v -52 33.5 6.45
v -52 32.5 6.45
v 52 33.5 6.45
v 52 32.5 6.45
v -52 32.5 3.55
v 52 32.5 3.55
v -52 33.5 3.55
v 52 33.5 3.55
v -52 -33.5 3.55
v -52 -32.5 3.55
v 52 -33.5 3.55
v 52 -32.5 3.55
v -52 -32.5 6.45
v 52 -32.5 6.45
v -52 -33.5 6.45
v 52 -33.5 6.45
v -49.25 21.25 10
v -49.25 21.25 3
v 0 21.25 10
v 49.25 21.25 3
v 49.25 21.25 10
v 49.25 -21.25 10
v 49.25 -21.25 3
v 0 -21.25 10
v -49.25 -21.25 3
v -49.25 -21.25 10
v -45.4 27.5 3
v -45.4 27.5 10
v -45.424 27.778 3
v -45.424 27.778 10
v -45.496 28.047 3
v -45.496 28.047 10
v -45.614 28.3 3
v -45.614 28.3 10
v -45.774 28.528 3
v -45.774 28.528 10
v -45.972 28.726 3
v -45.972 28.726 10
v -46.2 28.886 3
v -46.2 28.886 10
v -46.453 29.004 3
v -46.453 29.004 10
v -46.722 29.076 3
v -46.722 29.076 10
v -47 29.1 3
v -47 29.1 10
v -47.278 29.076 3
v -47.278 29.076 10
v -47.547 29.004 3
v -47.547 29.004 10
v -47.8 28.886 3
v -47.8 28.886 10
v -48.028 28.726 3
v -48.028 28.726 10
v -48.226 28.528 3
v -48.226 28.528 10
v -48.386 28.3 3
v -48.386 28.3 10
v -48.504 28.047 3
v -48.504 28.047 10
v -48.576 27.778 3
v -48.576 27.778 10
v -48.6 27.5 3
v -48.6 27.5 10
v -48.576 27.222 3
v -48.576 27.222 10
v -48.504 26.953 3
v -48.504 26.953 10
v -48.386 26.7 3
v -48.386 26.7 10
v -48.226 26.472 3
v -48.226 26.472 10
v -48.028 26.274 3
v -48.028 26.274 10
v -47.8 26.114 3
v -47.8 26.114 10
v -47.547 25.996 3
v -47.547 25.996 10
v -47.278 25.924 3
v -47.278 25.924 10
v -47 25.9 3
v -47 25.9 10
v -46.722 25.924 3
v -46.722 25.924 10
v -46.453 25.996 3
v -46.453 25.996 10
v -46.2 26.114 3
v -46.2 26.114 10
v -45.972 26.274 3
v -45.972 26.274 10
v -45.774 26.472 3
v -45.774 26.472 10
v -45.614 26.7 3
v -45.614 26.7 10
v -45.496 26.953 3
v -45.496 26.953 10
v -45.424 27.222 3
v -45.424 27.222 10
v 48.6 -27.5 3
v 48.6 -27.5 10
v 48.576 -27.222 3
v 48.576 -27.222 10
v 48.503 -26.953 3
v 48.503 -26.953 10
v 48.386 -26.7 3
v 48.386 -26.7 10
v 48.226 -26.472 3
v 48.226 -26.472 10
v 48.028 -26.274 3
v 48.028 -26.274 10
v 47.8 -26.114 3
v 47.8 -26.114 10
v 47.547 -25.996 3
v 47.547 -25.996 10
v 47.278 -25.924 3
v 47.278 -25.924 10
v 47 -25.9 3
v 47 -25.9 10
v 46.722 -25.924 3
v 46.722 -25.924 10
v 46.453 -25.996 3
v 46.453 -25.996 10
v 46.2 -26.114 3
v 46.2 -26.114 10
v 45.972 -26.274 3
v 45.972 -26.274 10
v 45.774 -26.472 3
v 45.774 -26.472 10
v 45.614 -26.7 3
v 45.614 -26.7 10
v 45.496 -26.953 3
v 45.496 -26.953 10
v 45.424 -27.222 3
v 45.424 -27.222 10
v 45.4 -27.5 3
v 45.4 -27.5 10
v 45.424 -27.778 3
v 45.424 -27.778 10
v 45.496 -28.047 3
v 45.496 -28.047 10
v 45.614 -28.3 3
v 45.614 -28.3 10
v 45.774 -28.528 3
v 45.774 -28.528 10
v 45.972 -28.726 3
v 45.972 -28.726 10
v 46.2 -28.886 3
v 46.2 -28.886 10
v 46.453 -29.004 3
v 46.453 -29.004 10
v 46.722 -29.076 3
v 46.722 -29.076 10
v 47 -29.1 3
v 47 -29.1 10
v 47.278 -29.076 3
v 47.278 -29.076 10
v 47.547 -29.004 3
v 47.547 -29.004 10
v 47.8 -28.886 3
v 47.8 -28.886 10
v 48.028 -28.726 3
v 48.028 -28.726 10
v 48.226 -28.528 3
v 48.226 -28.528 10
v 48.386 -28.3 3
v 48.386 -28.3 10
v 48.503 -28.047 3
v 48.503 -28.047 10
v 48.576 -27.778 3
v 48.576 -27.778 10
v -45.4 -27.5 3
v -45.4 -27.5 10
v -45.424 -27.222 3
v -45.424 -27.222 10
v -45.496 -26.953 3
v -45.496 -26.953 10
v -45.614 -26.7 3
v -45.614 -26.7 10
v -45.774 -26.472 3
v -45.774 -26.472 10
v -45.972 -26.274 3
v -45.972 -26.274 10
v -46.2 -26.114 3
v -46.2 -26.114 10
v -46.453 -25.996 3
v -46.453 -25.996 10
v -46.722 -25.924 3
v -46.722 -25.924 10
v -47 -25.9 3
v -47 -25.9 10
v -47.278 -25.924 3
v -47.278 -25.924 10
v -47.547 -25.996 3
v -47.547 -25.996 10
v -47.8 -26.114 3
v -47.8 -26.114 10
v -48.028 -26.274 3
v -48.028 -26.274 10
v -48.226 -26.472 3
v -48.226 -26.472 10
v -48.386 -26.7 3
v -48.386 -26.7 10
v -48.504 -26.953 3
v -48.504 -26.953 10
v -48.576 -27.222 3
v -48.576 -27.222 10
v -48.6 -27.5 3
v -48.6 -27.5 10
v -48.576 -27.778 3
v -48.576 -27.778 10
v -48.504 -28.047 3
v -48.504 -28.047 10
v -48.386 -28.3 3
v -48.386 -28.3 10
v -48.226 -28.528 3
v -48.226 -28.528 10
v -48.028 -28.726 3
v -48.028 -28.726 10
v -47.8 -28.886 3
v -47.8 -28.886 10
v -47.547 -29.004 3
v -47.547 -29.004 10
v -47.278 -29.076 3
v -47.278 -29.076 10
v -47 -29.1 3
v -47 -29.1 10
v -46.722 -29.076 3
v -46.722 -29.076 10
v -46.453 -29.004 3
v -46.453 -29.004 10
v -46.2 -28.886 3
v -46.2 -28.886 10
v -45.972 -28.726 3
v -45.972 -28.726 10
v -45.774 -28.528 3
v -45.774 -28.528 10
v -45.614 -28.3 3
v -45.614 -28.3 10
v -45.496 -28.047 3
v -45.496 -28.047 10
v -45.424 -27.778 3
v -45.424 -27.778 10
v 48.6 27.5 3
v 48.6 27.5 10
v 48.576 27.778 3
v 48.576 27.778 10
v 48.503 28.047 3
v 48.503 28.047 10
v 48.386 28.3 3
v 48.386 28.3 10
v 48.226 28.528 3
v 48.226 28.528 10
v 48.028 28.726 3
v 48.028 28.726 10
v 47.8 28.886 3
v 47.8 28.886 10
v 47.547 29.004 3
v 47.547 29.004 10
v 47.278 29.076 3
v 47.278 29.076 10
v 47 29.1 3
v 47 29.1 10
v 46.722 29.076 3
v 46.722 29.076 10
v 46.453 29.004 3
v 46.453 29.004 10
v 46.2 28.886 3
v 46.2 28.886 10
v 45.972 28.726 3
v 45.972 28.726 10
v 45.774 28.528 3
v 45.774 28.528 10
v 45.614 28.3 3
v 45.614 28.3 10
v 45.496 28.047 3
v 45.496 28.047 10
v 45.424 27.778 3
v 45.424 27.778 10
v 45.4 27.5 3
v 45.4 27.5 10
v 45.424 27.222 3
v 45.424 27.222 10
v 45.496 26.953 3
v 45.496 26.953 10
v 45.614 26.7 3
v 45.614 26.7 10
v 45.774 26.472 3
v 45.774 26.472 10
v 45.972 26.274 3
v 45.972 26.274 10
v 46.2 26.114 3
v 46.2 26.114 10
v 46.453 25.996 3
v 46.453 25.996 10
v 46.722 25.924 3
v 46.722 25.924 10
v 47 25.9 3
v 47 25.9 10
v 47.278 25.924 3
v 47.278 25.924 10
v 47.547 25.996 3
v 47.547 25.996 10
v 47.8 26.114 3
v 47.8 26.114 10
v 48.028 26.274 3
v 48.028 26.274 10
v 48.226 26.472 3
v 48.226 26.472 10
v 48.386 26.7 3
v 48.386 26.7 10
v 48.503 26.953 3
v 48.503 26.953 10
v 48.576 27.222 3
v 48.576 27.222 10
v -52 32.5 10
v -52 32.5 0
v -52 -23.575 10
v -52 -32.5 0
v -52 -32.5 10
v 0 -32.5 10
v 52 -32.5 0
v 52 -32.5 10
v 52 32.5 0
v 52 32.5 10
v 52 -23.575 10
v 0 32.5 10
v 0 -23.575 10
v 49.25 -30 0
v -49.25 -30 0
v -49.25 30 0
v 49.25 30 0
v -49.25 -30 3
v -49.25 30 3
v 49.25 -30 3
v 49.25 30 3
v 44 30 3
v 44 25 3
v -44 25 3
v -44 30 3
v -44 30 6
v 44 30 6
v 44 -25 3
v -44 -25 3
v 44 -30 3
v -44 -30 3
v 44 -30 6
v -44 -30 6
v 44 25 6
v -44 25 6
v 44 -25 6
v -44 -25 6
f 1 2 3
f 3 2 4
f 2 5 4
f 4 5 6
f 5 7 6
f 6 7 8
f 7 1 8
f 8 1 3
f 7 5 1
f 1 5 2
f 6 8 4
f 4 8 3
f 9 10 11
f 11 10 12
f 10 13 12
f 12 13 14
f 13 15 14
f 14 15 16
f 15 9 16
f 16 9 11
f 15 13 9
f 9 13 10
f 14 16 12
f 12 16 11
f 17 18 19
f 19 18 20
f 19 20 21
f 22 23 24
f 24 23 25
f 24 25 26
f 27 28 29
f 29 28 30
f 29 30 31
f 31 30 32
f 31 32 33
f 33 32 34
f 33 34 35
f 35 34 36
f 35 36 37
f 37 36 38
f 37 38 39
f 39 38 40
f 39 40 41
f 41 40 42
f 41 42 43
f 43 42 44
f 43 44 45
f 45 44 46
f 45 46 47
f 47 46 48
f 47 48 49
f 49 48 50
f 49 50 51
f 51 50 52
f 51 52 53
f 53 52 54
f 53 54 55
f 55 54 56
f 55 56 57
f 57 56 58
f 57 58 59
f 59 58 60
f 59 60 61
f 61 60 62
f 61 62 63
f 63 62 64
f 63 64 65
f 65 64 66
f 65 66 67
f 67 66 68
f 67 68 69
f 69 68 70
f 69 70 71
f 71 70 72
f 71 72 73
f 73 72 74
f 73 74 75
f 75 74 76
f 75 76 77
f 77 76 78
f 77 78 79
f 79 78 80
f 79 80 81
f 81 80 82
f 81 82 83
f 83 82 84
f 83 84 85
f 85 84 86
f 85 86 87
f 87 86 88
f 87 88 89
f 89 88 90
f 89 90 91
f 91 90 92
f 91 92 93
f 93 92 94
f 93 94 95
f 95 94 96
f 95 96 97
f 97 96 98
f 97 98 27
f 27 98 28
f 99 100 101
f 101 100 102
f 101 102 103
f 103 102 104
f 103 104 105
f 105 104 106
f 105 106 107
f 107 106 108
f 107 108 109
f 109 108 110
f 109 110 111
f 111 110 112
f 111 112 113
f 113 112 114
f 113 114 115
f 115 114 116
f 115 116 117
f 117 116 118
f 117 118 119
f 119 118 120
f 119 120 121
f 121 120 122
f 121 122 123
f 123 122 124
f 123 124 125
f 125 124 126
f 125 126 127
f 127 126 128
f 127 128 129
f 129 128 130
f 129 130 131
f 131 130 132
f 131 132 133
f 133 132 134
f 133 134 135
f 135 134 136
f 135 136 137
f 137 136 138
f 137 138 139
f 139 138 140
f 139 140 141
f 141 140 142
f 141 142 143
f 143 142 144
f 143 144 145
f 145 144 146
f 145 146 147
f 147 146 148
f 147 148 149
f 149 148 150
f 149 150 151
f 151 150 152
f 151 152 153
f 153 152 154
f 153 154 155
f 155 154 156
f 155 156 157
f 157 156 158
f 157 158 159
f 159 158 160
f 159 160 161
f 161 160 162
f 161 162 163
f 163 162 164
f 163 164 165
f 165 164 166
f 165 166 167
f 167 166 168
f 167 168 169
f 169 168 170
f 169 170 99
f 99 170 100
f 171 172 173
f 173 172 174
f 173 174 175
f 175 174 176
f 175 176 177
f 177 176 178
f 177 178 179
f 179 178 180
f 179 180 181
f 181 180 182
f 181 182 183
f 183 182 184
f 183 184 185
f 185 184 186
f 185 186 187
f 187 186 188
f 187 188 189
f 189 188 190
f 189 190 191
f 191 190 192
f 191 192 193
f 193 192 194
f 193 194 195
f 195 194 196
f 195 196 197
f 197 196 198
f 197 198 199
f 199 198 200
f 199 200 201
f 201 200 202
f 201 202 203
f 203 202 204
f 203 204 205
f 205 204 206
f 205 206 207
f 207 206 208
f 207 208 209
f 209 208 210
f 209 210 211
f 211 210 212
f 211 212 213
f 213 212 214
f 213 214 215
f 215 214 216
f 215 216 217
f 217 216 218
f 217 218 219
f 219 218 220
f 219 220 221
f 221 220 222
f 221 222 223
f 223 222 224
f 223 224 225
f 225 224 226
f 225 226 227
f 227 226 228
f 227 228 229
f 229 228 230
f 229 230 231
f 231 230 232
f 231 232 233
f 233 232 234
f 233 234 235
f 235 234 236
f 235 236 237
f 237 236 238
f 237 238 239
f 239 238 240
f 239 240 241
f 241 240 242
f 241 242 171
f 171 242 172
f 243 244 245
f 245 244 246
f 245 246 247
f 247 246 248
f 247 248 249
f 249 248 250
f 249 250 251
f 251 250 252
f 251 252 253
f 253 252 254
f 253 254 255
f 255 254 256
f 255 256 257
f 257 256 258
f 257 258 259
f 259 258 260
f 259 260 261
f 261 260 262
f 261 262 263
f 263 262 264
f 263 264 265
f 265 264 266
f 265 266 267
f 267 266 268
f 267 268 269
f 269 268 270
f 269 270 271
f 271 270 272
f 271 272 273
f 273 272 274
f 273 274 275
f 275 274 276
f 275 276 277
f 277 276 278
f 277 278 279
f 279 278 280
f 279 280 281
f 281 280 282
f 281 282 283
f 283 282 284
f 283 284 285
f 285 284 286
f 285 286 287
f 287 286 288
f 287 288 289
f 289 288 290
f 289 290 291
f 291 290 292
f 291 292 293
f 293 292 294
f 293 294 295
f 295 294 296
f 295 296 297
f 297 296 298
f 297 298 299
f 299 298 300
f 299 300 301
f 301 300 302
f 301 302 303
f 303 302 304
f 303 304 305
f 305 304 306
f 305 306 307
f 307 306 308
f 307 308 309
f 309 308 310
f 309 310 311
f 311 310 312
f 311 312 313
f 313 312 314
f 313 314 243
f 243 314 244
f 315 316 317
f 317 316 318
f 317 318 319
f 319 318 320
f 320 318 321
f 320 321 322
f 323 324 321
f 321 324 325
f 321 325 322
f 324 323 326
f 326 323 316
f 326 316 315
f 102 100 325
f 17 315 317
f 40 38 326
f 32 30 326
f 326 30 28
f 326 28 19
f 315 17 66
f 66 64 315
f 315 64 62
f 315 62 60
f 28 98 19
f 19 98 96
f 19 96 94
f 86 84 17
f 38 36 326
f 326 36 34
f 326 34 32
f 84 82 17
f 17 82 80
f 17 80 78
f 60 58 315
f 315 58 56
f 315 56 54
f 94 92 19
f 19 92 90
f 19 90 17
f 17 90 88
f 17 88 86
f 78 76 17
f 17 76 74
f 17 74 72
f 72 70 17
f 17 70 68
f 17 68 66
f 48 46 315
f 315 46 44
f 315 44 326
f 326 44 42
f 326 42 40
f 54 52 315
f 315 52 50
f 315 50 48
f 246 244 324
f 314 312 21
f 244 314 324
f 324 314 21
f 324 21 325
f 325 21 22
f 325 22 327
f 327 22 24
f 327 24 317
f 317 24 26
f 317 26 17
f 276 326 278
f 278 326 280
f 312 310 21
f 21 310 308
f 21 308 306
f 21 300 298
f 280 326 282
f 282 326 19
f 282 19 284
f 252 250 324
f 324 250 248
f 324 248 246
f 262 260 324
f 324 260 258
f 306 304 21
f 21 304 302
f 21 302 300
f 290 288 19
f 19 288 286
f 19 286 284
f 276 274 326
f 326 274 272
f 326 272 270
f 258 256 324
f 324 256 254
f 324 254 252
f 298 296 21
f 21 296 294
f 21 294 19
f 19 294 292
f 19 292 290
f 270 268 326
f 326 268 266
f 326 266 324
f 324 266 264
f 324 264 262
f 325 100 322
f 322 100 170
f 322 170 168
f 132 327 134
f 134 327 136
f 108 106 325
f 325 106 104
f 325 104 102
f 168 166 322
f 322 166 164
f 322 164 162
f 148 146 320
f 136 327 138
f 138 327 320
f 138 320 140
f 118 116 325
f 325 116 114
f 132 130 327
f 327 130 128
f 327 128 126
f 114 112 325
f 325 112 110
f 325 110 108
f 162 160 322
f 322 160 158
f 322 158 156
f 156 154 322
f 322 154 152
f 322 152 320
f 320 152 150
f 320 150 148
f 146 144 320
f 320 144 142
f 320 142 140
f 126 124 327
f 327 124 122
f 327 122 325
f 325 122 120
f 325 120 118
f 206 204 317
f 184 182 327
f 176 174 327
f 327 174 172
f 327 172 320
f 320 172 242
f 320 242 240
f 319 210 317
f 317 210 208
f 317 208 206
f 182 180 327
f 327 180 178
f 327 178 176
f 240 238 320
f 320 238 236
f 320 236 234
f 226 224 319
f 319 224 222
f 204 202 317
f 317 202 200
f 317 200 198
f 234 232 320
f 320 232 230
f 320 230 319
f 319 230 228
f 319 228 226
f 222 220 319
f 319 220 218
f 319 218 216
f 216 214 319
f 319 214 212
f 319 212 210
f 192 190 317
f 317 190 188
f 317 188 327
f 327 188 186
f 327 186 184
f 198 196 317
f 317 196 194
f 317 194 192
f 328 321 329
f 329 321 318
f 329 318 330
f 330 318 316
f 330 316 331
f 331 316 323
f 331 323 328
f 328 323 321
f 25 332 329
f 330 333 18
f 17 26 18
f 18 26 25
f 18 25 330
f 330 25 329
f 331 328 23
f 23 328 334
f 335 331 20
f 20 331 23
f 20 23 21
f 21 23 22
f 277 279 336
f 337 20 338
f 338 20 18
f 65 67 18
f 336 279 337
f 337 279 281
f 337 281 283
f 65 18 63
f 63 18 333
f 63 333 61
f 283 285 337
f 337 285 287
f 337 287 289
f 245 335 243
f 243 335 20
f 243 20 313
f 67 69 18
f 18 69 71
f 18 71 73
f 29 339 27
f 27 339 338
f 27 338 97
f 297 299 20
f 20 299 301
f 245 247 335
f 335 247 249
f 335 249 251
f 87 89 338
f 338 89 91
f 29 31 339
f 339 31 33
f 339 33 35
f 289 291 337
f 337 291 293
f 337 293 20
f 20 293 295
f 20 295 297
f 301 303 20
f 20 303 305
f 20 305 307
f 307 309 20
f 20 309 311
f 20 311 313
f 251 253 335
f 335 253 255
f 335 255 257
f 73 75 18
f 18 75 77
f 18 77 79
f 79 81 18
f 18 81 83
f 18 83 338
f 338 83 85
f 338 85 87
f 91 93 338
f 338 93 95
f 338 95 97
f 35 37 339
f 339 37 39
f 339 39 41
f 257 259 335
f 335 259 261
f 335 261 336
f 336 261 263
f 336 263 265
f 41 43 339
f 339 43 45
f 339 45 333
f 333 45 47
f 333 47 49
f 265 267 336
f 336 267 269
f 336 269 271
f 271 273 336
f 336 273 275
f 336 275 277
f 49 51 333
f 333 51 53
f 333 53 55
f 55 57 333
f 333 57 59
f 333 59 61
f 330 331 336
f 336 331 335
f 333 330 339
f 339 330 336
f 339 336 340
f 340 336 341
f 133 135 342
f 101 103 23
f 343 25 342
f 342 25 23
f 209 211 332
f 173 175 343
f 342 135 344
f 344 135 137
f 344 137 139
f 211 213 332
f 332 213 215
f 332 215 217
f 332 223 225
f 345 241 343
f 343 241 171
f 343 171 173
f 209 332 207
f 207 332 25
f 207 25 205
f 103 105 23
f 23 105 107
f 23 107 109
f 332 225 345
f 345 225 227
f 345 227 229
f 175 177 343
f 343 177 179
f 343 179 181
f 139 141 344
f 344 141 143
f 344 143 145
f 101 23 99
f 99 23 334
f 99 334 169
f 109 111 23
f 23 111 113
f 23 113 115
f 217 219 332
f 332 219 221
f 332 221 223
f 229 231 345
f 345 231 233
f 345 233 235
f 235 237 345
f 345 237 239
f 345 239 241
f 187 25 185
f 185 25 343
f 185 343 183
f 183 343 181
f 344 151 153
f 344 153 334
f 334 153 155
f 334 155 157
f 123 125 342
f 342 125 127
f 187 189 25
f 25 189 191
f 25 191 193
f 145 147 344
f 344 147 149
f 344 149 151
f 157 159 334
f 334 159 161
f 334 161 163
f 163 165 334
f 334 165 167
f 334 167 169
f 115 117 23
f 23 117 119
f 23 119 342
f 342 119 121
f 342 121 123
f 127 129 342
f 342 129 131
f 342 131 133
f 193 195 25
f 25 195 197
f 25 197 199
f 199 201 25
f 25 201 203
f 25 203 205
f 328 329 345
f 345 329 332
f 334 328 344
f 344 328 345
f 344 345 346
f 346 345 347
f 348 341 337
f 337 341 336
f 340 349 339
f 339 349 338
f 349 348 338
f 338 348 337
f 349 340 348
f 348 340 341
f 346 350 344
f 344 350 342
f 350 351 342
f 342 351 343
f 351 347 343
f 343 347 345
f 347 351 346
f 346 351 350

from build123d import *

# Parameters (mm, degrees)
MAIN_SKETCH_W                = 104
MAIN_SKETCH_H                = 65
MAIN_EXTRUSION_DEPTH         = 10
ESQUISSE2_W                  = 2.9
ESQUISSE2_H                  = 1
MAKERBEAM_ATTACHMENT_DEPTH   = 104
MAKERBEAM_ATTACHMENT_2_DEPTH = 104
ESQUISSE3_W                  = 98.5
ESQUISSE3_H                  = 42.5
HOLE_LCD_SCREEN_DEPTH        = 11
ESQUISSE4_R                  = 1.6
HOLES_SUPPORT_LCD_DEPTH      = 11
ESQUISSE5_W                  = 98.5
ESQUISSE5_H                  = 60
SUPPORTTOPANDBOTTOM_DEPTH    = 3
ESQUISSE6_W                  = 88
ESQUISSE6_H                  = 5
HOLES_FOR_PINS_DEPTH         = 3


with BuildPart() as part:
    # Main Sketch → Main Extrusion (new body)
    with BuildSketch(Plane.XY):
        Rectangle(MAIN_SKETCH_W, MAIN_SKETCH_H)
    extrude(amount=MAIN_EXTRUSION_DEPTH)

    # Esquisse3 → Hole LCD Screen (cut, through all)
    with BuildSketch(Plane.XY.offset(10)):
        Rectangle(ESQUISSE3_W, ESQUISSE3_H)
    extrude(amount=-HOLE_LCD_SCREEN_DEPTH, mode=Mode.SUBTRACT)

    # Esquisse4 → Holes Support LCD (cut, through all)
    with BuildSketch(Plane.XY.offset(10)):
        with Locations((-47, 27.5)):
            Circle(ESQUISSE4_R)
        with Locations((47, 27.5)):
            Circle(ESQUISSE4_R)
        with Locations((-47, -27.5)):
            Circle(ESQUISSE4_R)
        with Locations((47, -27.5)):
            Circle(ESQUISSE4_R)
    extrude(amount=-HOLES_SUPPORT_LCD_DEPTH, mode=Mode.SUBTRACT)

    # Esquisse5 → SupportTopAndBottom (cut)
    with BuildSketch(Plane(origin=(0, 0, 0), x_dir=(-1, 0, 0), z_dir=(0, 0, -1))):
        Rectangle(ESQUISSE5_W, ESQUISSE5_H)
    extrude(amount=-SUPPORTTOPANDBOTTOM_DEPTH, mode=Mode.SUBTRACT)

    # Esquisse6 → Holes For Pins (cut)
    with BuildSketch(Plane(origin=(0, 0, 3), x_dir=(-1, 0, 0), z_dir=(0, 0, -1))):
        with Locations((0, 27.5)):
            Rectangle(ESQUISSE6_W, ESQUISSE6_H)
        with Locations((0, -27.5)):
            Rectangle(ESQUISSE6_W, ESQUISSE6_H)
    extrude(amount=-HOLES_FOR_PINS_DEPTH, mode=Mode.SUBTRACT)


with BuildPart() as body_2:
    # Esquisse2 → MakerBeam Attachment (new body)
    with BuildSketch(Plane.ZY.offset(52)):
        with Locations((5, 33)):
            Rectangle(ESQUISSE2_W, ESQUISSE2_H)
    extrude(amount=-MAKERBEAM_ATTACHMENT_DEPTH)


with BuildPart() as body_3:
    # Esquisse2 → MakerBeam Attachment 2 (new body)
    with BuildSketch(Plane.ZY.offset(52)):
        with Locations((5, -33)):
            Rectangle(ESQUISSE2_W, ESQUISSE2_H)
    extrude(amount=-MAKERBEAM_ATTACHMENT_2_DEPTH)


solid = Compound([part.part, body_2.part, body_3.part])
